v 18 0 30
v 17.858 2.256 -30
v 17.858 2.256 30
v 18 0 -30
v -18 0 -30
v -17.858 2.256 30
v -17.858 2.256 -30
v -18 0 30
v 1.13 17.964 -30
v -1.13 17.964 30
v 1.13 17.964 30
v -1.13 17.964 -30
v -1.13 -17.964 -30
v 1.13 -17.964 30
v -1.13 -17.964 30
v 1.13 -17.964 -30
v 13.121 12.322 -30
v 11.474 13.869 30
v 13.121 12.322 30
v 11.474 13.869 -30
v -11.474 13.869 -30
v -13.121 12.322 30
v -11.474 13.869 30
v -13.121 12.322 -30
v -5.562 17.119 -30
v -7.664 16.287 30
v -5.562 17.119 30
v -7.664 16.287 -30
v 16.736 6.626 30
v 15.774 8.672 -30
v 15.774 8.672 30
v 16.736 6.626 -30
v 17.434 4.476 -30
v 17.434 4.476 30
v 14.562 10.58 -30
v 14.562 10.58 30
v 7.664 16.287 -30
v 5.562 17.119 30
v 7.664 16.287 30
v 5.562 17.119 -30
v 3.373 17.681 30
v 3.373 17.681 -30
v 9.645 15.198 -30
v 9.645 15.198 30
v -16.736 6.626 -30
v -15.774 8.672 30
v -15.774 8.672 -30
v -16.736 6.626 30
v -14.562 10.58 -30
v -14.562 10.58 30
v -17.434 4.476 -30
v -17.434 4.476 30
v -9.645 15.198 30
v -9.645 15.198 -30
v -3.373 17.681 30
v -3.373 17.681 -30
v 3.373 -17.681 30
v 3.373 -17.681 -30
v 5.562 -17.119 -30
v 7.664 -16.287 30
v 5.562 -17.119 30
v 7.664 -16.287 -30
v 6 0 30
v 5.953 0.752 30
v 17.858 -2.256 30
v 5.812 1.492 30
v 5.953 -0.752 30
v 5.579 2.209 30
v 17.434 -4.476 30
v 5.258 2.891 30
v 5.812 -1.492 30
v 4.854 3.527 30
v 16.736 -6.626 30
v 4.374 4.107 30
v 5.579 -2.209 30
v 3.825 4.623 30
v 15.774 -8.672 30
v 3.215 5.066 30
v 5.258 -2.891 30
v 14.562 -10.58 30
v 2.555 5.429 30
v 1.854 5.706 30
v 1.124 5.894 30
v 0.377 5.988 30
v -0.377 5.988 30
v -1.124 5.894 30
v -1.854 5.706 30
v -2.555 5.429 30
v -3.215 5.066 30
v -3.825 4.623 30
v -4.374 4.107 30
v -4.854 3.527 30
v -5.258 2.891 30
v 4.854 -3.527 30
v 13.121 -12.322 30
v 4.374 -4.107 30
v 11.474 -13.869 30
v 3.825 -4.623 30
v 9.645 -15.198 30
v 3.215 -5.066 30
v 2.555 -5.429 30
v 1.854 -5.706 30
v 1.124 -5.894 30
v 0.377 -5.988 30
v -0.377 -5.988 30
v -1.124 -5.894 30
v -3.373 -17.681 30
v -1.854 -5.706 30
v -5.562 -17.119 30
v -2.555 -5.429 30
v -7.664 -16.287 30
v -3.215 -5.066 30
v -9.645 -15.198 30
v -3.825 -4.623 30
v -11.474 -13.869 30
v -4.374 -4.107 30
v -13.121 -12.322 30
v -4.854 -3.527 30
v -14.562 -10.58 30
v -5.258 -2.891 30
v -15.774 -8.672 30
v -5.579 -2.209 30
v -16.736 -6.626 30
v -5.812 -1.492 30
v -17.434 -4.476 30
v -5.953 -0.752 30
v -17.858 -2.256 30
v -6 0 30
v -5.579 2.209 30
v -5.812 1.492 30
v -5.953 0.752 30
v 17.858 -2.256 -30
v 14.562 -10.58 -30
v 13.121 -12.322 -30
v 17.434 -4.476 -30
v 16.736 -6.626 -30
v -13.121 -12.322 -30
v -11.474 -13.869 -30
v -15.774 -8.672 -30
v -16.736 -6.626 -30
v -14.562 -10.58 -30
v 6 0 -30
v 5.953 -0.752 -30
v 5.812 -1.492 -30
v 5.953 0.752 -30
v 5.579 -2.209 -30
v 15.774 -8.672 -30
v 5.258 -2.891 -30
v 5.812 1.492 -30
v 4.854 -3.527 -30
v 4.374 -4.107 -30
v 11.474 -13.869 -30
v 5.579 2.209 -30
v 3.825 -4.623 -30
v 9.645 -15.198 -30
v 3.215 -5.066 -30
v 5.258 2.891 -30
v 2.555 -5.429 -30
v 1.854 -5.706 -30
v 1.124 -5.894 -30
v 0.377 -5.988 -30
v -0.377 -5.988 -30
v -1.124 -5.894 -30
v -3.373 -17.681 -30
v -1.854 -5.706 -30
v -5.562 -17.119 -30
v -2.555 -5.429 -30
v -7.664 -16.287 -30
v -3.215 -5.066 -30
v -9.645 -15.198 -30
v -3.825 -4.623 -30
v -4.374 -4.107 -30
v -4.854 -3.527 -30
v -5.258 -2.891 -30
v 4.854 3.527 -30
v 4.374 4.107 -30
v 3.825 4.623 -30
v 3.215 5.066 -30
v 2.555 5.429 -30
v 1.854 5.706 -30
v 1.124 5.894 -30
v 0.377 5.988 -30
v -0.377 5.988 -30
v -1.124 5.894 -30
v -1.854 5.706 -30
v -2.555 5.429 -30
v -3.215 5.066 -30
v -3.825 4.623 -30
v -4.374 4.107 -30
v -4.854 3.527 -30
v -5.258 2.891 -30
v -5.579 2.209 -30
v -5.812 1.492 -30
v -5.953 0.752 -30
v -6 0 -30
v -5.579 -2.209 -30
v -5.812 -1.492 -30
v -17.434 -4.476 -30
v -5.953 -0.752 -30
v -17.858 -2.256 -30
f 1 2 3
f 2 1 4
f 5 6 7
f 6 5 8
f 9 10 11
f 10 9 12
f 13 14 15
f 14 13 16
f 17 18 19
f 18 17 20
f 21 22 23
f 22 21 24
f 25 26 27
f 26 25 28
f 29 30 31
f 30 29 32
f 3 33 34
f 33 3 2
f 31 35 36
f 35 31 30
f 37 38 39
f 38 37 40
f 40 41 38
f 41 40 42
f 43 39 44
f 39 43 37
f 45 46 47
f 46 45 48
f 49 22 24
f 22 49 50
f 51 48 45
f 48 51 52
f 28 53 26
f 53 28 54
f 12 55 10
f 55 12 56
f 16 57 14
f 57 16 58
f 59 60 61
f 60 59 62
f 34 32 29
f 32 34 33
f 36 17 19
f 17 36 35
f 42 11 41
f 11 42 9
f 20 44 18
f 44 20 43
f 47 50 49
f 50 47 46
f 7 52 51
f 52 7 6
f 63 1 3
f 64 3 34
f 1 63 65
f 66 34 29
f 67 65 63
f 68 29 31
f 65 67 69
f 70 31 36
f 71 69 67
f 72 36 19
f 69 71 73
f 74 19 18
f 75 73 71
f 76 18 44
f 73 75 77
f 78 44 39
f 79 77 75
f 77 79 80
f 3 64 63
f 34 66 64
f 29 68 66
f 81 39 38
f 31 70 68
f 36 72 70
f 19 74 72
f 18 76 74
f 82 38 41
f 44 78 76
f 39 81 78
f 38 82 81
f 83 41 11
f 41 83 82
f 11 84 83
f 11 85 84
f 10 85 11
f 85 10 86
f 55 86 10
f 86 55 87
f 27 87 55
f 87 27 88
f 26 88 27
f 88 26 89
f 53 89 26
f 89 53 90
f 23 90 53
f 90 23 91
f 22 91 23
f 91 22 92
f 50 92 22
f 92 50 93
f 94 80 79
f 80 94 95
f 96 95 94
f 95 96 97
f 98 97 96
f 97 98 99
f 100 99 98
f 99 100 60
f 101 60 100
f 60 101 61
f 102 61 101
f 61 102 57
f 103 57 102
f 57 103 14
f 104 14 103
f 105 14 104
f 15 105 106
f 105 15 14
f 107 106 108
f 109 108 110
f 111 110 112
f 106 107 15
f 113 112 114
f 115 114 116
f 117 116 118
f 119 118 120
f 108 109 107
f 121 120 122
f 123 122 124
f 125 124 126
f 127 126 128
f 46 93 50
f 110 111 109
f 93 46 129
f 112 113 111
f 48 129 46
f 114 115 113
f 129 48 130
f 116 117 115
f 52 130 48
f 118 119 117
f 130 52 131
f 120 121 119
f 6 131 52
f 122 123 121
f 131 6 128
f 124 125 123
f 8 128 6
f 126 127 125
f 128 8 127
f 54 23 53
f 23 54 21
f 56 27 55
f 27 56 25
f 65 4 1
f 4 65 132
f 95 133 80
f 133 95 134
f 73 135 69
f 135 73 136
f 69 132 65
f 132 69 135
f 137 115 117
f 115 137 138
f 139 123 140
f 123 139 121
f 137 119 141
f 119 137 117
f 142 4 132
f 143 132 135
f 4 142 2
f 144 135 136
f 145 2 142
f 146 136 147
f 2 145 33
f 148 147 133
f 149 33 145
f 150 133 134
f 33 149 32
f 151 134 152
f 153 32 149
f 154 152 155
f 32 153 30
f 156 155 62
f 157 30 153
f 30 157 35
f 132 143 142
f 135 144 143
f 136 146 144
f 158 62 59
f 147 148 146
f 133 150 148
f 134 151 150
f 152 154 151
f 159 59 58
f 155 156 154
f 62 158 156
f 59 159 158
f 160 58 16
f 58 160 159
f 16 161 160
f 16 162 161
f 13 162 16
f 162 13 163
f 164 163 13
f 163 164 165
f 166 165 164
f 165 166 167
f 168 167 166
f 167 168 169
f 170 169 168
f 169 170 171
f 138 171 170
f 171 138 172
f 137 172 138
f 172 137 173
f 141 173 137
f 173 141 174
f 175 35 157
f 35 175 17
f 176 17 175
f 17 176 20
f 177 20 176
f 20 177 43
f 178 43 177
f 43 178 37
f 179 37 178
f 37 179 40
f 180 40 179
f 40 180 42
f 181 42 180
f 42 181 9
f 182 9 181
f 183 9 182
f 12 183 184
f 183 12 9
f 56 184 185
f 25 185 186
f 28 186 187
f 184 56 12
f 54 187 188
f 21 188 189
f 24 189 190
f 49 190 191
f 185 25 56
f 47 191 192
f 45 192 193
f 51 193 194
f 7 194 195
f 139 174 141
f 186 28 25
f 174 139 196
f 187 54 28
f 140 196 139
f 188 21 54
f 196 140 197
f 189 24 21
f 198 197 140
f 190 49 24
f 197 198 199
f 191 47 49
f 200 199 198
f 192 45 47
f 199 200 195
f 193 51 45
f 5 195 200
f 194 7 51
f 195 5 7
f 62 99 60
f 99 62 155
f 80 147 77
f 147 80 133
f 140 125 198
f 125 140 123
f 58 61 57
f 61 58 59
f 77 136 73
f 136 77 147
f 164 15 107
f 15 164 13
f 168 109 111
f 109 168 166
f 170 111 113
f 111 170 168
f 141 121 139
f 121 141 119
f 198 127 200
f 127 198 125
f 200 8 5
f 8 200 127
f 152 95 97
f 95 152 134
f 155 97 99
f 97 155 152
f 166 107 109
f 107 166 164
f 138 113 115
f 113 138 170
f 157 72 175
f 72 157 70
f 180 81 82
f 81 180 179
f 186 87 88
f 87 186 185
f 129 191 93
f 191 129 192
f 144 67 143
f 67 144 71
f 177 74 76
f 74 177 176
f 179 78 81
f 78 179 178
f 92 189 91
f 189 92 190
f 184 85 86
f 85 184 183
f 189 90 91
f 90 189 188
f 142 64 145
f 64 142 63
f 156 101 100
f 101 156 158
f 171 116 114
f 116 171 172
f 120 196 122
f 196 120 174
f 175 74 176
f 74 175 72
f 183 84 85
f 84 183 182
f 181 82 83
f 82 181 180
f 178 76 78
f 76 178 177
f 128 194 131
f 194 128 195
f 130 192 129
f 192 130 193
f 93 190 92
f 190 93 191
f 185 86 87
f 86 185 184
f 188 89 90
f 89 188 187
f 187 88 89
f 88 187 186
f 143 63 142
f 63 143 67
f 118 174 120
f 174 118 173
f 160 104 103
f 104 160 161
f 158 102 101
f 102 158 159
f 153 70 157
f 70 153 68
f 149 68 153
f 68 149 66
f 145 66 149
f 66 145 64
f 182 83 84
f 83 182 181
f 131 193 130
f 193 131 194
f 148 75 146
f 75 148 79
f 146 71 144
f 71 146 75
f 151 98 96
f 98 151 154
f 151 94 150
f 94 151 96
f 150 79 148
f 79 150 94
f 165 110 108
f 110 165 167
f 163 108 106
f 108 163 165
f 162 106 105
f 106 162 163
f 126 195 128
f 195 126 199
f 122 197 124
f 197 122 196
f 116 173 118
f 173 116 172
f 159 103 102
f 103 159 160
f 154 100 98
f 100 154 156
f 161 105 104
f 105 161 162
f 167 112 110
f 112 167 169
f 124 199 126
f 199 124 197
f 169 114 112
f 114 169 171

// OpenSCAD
$fn = 50;


difference() {
	union() {
		translate(v = [0, 0, -30.0000000000]) {
			cylinder(h = 60, r = 18.0000000000);
		}
	}
	union() {
		translate(v = [0, 0, -100.0000000000]) {
			cylinder(h = 200, r = 6);
		}
	}
}
